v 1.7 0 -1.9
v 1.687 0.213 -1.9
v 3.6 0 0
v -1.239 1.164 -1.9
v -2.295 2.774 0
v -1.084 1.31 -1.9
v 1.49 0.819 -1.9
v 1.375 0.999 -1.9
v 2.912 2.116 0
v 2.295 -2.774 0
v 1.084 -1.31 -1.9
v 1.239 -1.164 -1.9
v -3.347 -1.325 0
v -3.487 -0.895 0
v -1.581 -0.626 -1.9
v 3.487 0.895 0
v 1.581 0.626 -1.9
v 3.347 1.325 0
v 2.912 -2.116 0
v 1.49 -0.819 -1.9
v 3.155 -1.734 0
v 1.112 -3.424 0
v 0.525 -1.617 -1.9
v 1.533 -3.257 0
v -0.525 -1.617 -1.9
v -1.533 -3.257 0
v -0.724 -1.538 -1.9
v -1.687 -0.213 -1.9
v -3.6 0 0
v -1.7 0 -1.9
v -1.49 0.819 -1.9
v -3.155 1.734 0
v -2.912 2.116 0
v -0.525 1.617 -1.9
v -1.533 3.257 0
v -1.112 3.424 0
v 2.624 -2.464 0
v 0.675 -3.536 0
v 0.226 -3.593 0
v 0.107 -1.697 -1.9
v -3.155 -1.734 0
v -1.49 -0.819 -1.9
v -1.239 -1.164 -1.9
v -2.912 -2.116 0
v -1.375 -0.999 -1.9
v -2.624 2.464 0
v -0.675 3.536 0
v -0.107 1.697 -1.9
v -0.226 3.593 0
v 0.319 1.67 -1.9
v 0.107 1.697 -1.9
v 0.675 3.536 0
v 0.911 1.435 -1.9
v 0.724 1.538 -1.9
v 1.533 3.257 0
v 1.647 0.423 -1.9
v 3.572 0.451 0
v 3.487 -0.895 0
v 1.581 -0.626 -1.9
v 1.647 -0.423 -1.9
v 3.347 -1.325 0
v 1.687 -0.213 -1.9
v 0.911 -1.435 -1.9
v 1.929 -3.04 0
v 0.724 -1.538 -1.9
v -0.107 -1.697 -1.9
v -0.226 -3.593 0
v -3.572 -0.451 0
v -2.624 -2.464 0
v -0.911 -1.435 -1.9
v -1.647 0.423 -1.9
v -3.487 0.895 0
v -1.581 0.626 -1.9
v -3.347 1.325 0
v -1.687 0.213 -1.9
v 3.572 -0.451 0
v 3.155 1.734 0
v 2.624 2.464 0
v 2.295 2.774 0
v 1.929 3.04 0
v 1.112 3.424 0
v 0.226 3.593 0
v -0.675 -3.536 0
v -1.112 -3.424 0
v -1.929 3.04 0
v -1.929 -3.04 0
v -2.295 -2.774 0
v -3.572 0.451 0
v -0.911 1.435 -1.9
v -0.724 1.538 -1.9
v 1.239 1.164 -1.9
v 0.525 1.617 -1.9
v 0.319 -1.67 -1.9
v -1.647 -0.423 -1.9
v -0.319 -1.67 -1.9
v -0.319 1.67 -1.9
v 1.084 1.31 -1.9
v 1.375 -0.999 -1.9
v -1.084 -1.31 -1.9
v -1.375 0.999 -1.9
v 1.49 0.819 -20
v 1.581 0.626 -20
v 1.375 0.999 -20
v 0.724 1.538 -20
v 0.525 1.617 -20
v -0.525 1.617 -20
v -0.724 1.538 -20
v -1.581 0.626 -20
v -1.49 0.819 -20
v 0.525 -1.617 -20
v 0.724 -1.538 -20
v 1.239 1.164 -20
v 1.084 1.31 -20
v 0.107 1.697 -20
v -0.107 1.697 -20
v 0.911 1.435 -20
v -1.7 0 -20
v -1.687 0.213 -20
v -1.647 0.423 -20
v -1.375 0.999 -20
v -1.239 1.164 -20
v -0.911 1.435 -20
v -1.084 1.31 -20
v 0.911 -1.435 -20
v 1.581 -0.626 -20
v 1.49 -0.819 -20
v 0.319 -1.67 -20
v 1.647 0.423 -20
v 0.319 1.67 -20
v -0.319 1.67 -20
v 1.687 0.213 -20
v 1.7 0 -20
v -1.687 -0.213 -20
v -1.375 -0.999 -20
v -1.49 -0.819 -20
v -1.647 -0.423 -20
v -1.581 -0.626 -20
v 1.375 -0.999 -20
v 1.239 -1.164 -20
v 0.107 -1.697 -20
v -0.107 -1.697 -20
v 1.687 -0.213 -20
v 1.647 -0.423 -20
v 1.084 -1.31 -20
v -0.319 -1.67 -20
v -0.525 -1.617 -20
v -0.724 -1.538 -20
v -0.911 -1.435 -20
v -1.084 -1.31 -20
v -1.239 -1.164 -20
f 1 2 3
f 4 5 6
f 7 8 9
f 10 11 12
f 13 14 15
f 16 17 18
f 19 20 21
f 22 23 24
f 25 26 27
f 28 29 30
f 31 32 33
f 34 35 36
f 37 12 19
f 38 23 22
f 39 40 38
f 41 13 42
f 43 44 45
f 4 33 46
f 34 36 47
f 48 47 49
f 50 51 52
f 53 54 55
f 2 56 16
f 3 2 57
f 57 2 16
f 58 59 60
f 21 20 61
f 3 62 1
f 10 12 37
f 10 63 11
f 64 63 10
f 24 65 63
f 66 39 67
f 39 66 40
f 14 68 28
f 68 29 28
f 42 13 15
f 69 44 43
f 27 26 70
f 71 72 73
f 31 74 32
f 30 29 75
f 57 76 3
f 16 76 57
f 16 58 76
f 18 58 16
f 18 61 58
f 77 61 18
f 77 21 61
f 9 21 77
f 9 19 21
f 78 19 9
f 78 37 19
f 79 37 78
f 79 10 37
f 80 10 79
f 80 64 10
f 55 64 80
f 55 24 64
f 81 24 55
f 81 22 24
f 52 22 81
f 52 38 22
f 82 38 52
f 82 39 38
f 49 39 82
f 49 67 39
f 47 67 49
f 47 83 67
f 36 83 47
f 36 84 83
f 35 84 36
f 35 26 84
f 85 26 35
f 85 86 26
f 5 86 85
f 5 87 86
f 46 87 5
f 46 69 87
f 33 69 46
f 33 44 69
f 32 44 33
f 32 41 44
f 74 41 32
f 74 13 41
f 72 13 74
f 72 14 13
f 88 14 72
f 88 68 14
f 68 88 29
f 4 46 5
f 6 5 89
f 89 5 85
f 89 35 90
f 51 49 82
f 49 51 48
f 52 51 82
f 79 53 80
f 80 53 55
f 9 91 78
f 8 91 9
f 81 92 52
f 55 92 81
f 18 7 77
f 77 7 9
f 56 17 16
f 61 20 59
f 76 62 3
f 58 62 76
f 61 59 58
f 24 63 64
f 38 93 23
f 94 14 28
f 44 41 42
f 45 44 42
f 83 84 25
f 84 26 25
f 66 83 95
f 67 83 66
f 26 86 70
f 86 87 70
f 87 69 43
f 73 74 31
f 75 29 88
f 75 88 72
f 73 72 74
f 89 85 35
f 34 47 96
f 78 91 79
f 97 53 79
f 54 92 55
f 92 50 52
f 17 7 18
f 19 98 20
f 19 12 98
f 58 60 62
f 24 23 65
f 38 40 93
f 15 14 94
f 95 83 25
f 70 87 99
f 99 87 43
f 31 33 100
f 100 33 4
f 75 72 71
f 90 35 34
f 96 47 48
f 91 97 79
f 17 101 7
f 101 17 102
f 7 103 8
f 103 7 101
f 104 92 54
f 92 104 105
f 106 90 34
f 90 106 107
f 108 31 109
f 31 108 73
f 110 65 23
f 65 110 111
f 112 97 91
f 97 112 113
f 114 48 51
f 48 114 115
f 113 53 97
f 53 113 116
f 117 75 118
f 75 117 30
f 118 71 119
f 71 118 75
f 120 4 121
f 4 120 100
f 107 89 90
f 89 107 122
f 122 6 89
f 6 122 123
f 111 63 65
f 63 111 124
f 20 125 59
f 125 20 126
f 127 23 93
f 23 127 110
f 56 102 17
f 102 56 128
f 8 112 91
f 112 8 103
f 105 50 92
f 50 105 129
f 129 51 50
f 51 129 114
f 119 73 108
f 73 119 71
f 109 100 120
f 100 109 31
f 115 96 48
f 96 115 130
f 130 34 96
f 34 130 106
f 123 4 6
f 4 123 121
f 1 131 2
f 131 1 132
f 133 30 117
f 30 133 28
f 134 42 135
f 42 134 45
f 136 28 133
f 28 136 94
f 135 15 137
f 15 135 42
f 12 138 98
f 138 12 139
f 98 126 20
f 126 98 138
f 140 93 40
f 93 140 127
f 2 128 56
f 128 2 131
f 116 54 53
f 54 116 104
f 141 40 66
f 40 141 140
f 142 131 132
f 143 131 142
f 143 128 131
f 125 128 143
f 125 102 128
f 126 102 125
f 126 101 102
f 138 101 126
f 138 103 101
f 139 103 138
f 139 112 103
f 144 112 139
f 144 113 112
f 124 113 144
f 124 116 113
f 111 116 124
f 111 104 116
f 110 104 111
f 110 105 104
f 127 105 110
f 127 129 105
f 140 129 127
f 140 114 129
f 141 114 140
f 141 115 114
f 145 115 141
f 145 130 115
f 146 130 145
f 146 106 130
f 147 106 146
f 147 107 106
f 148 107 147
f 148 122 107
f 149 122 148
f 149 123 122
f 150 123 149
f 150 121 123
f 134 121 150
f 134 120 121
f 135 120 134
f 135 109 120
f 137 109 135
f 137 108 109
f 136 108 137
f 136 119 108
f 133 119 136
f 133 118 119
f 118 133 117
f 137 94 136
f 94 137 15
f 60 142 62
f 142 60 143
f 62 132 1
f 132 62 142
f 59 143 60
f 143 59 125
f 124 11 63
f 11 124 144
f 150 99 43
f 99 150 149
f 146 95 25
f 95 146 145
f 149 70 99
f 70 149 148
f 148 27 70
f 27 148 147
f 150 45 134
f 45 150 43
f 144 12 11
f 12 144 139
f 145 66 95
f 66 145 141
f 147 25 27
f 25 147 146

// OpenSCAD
// Generated by SolidPython 1.1.3 on 2023-03-13 21:06:12
$fn = 50;


difference() {
	union() {
		translate(v = [0, 0, -1.9000000000]) {
			rotate(a = [0, 0, 0]) {
				cylinder(h = 1.9000000000, r1 = 1.7000000000, r2 = 3.6000000000);
			}
		}
		translate(v = [0, 0, -20]) {
			rotate(a = [0, 0, 0]) {
				cylinder(h = 20, r = 1.7000000000);
			}
		}
	}
	union();
}
/***********************************************
*********      SolidPython code:      **********
************************************************
 
from solid import *
import os
import subprocess

import oomB

import opsc_library_gen

mode = "laser"
#mode = "3d_print"

defined_objects = {}

radius_dict = {}
countersunk_dict = {}


def set_mode(m):
    global mode
    mode = m
    radius_dict['M6'] = 6.5/2
    radius_dict['M3'] = 3.3/2
    if mode == "laser":
        radius_dict['M6'] = 6/2
        radius_dict['M3'] = 3/2

    countersunk_dict['M3'] = {}
    countersunk_dict['M3']['little_rad'] = radius_dict['M3']
    countersunk_dict['M3']['big_rad'] = (5.5+0.6)/2
    if mode == "laser":
        countersunk_dict['M3']['big_rad'] = (4.75+0.6)/2
        countersunk_dict['M3']['little_rad'] = (4.75+0.6)/2

    countersunk_dict['M3']['height'] = 1.7


def opsc_make_object(filename, objects, save_type="none",resolution=50, layers = 1, tilediff = 200, mode="laser", overwrite=True):
    if overwrite or not os.path.exists(filename):
        set_mode(mode)
        save_type = save_type.lower()
        os.makedirs(os.path.dirname(filename), exist_ok=True)
        final_object = opsc_get_object(objects, mode = mode)
        # Save the final object to the specified filename    
        scad_render_to_file(final_object, filename, file_header='$fn = %s;' % resolution, include_orig_code=True)
        if save_type == "all":
            saveToAll(filename)
        elif save_type == "dxf":
            saveToDxf(filename)
        if mode == "laser":
            filename_laser = filename.replace(".scad","-flat.scad")
            scad_render_to_file(getLaser(final_object, layers=layers, tilediff=tilediff), filename_laser, file_header='$fn = %s;' % resolution, include_orig_code=True)
            if save_type == "all":
                saveToAll(filename_laser)
            elif save_type == "dxf":
                saveToDxf(filename_laser)


def opsc_get_object(objects, mode = "laser"):
    # Create the solidpython objects only include the positive objects and if they don't have inclusion or their inclusion is either all or mode
    # Initialize an empty list to store the results
    positive_objects = []

    # Iterate over the "objects" list
    for obj in objects:
        # Check if the current object has a "type" key with a value of "positive"
        if obj['type'] == 'positive':
            # Check if the current object has an "inclusion" key and its value matches "mode",
            # or if the current object does not have an "inclusion" key at all
            if not 'inclusion' in obj or obj['inclusion'] == "all" or obj['inclusion'] == mode:
                # Call the "get_opsc_item" function with the current object as an argument
                opsc_item = get_opsc_item(obj)
                # Add the result to the "positive_objects" list
                positive_objects.append(opsc_item)
# Initialize an empty list to store the results
    negative_objects = []

    # Iterate over the "objects" list
    for obj in objects:
        # Check if the current object has a "type" key with a value of "negative"
        if obj['type'] == 'negative':
            # Check if the current object has an "inclusion" key and its value matches "mode",
            # or if the current object does not have an "inclusion" key at all
            if not 'inclusion' in obj or obj['inclusion'] == "all" or obj['inclusion'] == mode:
                # Call the "get_opsc_item" function with the current object as an argument
                opsc_item = get_opsc_item(obj)
                # Add the result to the "negative_objects" list
                negative_objects.append(opsc_item)
    
    #positive_objects = [get_opsc_item(obj) for obj in objects if obj['type'] == 'positive']
    #negative_objects = [get_opsc_item(obj) for obj in objects if obj['type'] == 'negative']
    # Union the positive objects
    positive_object = union()(*positive_objects)
    # Union the negative objects
    negative_object = union()(*negative_objects)
    # Create the final object by subtracting the negative objects from the positive objects
    return difference()(positive_object, negative_object)

def get_opsc_item(params):
    # A dictionary to map radius string values to numerical values
    #radius_dict = {'small': 5, 'medium': 10, 'large': 15}
    # An array of function names for basic shapes
    basic_shapes = ['cube', 'sphere', 'cylinder']
    
    # An array of function names for other shapes
    other_shapes = ['hole', 'slot', 'rounded_rectangle', 'countersunk', 'polyg']
    


    # Convert radius to r if present, and remove radius from the params dictionary
    if 'radius' in params:
        if isinstance(params['radius'], str):
            # Use the radius_dict to map the radius string value to a numerical value
            params['r'] = radius_dict[params['radius']]
        else:
            params['r'] = params['radius']
        del params['radius']
    

    # Check if the object type is a basic shape
    if params['shape'] in basic_shapes:
        # Remove shape and unexpected dictionary values
        allowed_keys = {'size', 'r', 'r1', 'r2', 'd', 'h', 'rw', 'rh', 'dw', 'dh'}
        shape_params = {k: v for k, v in params.items() if k in allowed_keys}

        #params['m'] = "#"
        ###split for adding modifier
        try:
            m = params['m']
            func = globals()[params['shape']]
            return_value = get_opsc_transform(params,func(**shape_params))
            return_value = (return_value).set_modifier(m)
            return return_value
        except KeyError as e:
            return get_opsc_transform(params,globals()[params['shape']](**shape_params))
        
    elif params['shape'] == 'polygon':
        # Remove shape and unexpected dictionary values
        h  = params['height']
        allowed_keys = {'points'}
        shape_params = {k: v for k, v in params.items() if k in allowed_keys}

        # Call the corresponding function for the shape parameter, using ** notation to pass the shape_params dictionary as keyword arguments
        params["rot"] = [0,0,0]        
        try:
            m = params['m']
            func = globals()[params['shape']]
            return_value = get_opsc_transform(params,linear_extrude(h)(globals()[params['shape']](**shape_params)))
            return_value = (return_value).set_modifier(m)
            return return_value
        except KeyError as e:
            return_value = get_opsc_transform(params,linear_extrude(h)(globals()[params['shape']](**shape_params)))
            return_value = (return_value)
            return return_value


    # If the object type is not a basic shape, check if it's a defined object or one of the other shapes
    elif params['shape'] in other_shapes:
        # Call the corresponding function for the shape parameter, passing the params dictionary as an argument
        p2 = copy.deepcopy(params)
        p2["pos"] = [0,0,0]
        return get_opsc_transform(params,globals()[params['shape']](p2))
    
    # If the object is not a basic shape or a defined object, try to import it from a .scad file
    else:
        obj = defined_objects[params['shape']]
        return get_opsc_transform(params,obj)

def get_opsc_transform(params, solid_obj):
    # Rotate the object based on the 'rot' field in the params dictionary, or the 'rotX', 'rotY', and 'rotZ' fields if 'rot' is not present
    rot = params.get('rot', [])
    if rot:
        rotX, rotY, rotZ = rot
    else:
        rotX = params.get('rotX', 0)
        rotY = params.get('rotY', 0)
        rotZ = params.get('rotZ', 0)
    solid_obj = rotate([rotX, rotY, rotZ])(solid_obj)

    # Translate the object based on the 'pos' field in the params dictionary, or the 'x', 'y', and 'z' fields if 'pos' is not present
    pos = params.get('pos', [])
    if pos:
        x, y, z = pos
    else:
        x = params.get('x', 0)
        y = params.get('y', 0)
        z = params.get('z', 0)
    solid_obj = translate([x, y, z])(solid_obj)
    return solid_obj


import random

def opsc_easy_array(type, shape, repeats, pos_start, shift_arr, **kwargs):
    for i in range(0,3):
        repeats.append(1)
        pos_start.append(0)
        shift_arr.append(0)
    return_objects = []

    for x in range(0,repeats[0]):
        for y in range(0,repeats[1]):
            for z in range(0,repeats[2]):
                return_objects.append(opsc_easy(type, shape, pos=[pos_start[0]+x*shift_arr[0],pos_start[1]+y*shift_arr[1],pos_start[2]+z*shift_arr[2]], **kwargs))
    return return_objects                



def opsc_easy(type, shape, **kwargs):
    obj = {
        'type': type,
        'shape': shape
    }
    for param in ['size', 'r', 'r1', 'r2', 'd', 'h', 'rw', 'rh', 'dw', 'dh', 'pos', 'x', 'y', 'z', 'rot', 'rotX', 'rotY', 'rotZ', "w", "inclusion", 'sides', 'height', "m"]:
        if param in kwargs:
            obj[param] = kwargs[param]
    return obj

def hole(params):
    p2 = copy.deepcopy(params)  
    # Check if the radius is a string and replace it with the corresponding value from the dictionary
    if isinstance(p2['r'], str):
        p2['r'] = radius_dict[p2['r']]
    
    # Set the height to 100 if not specified
    if 'h' not in p2:
        p2['h'] = 100
        p2["pos"] = [0,0,-50]
    p2["center"] = True
    # Create the cylinder object
    p2["shape"] = "cylinder"
    p2["type"] = "positive"

    return get_opsc_item(p2)

import copy

def countersunk(params):
    p2 = copy.deepcopy(params)
    counter_rad = p2['r']
    p2['r'] = radius_dict[p2['r']]
    hp = copy.deepcopy(p2)
    hp["type"] = "positive"
    hp["shape"] = "hole"
    del hp["rot"]
    hol = get_opsc_item(hp)
    
    cp = copy.deepcopy(p2)
    cp["h"] = countersunk_dict[counter_rad]["height"]
    cp["r2"] = countersunk_dict[counter_rad]["little_rad"]
    cp["r1"] = countersunk_dict[counter_rad]["big_rad"]
    del cp["r"]
    del cp["rot"]
    cp["type"] = "positive"
    cp["shape"] = "cylinder"
    cp["pos"] = [0,0,0]

    top = get_opsc_item(cp)
    return union()(hol,top)



def slot(params):  
    p2 = copy.deepcopy(params) 
    if isinstance(p2['r'], str):
        p2['r'] = radius_dict[p2['r']]
    p2["type"] = "positive"
    p2["shape"] = "hole"
    del p2["rot"]
    p2["pos"] = [0,0,0]
    left = copy.deepcopy(p2)
    right = copy.deepcopy(p2)
    left["pos"][0] = p2["w"] / 2 - p2["r"] 
    
    right["pos"][0] = -p2["w"] / 2 + p2["r"] 
    pass
    leftObj = get_opsc_item(left)
    rightObj = get_opsc_item(right)
    return hull()(leftObj, rightObj)

def rounded_rectangle(params):   
    p2 = copy.deepcopy(params) 
    p2["h"] = p2["size"][2]
    p2["pos"] = p2.get("pos", [0, 0, 0]) 
    p2["type"] = "positive"
    p2["shape"] = "hole"
    p2["pos"] = [0,0,0]
    
    if 'rot' in p2:
        del p2["rot"]   
    if 'r' not in p2:
        p2["r"] = 5 
    tl = copy.deepcopy(p2)
    tr = copy.deepcopy(p2)
    bl = copy.deepcopy(p2)
    br = copy.deepcopy(p2)
    tl["pos"][0] = -(p2["size"][0] - p2["r"]*2)/2
    tl["pos"][1] = (p2["size"][1] - p2["r"]*2)/2
    tr["pos"][0] = (p2["size"][0] - p2["r"]*2)/2
    tr["pos"][1] = (p2["size"][1] - p2["r"]*2)/2
    bl["pos"][0] = -(p2["size"][0] - p2["r"]*2)/2
    bl["pos"][1] = -(p2["size"][1] - p2["r"]*2)/2
    br["pos"][0] = (p2["size"][0] - p2["r"]*2)/2
    br["pos"][1] = -(p2["size"][1] - p2["r"]*2)/2
    del tl["size"]
    del tr["size"]
    del bl["size"]
    del br["size"]
    tlo = get_opsc_item(tl)
    tro = get_opsc_item(tr)
    blo = get_opsc_item(bl)
    bro = get_opsc_item(br)    
    return hull()(tlo, tro, blo, bro)



def polyg(params):
    p2 = copy.deepcopy(params) 
    p2["type"] = "positive"
    p2["shape"] = "polygon"
    p2["pos"] = [0,0,0]
    sides = p2["sides"]
    radius = p2["r"]    
    angles = [i * 360 / sides for i in range(sides)]
    points = regular_polygon(sides, radius)
    
    p2["points"] = points
    return get_opsc_item(p2)

import math

def regular_polygon(num_sides, radius):
    # Calculate the angle between each side
    angle = 2 * math.pi / num_sides

    # Calculate the points of the polygon
    points = []
    for i in range(num_sides):
        x = radius * math.cos(i * angle)
        y = radius * math.sin(i * angle)
        points.append((x, y))
    return points

def import_scad_object(filename):
    # Import the .scad file and convert it to a solidpython object
    #filename = "parts"
    obj = import_scad(filename)
    return obj.main()



import os
import solid as solidpython

# A dictionary to store the defined objects


def load_scad_objects():
    opsc_library_gen.gen_library(defined_objects)

import random

def test(num_objects):
    objects = []
    for i in range(num_objects):
        # Choose a random shape
        #shape = random.choice(['cube', 'sphere', 'cylinder', 'hole', 'slot', "rounded_rectangle"])
        shape = random.choice(["rounded_rectangle"])

        # Choose a random type
        type = random.choice(['positive', 'negative'])
        
        # Create an empty object dictionary
        obj = {'shape': shape, 'type': type}
        
        # Set shape-specific parameters
        if obj['shape'] in ['cube']:
            obj['size'] =  [random.uniform(5, 15), random.uniform(5, 15), random.uniform(5, 15)]
        if obj['shape'] in ['rounded_rectangle']:
            obj['size'] =  [random.uniform(5, 15), random.uniform(5, 15), random.uniform(5, 15)]
            obj['r'] = random.uniform(0.5, 5)
        elif obj['shape'] == 'sphere':
            obj['r'] = random.uniform(5, 15)
        elif obj['shape'] in ['cylinder', 'hole']:
            obj['r'] = random.uniform(0.5, 5)
            obj['h'] = random.uniform(5, 15)
        elif obj['shape'] == 'slot':
            obj['r'] = random.uniform(0.5, 5)
            obj['h'] = random.uniform(5, 15)
            obj['w'] = random.uniform(5, 15)
        
        # Set a random position and rotation
        obj['pos'] = [random.uniform(-20, 20), random.uniform(-20, 20), random.uniform(-20, 20)]
        obj['rot'] = [random.uniform(-180, 180), random.uniform(-180, 180), random.uniform(-180, 180)]
        
        # Add the object to the list
        objects.append(obj)
    return objects

####### old file saving
def saveToAll(fileIn):
    saveToStl(fileIn)
    saveToDxf(fileIn)
    saveToPng(fileIn)
    saveToSvg(fileIn)

def saveToDxf(fileIn, fileOut="", copy_to_laser=True):
    if fileOut == "":
        fileOut = fileIn.replace(".scad",".dxf")
    saveToFile(fileIn, fileOut)


    
def saveToPng(fileIn, fileOut="",extra="--render"):
    if fileOut == "":
        fileOut = fileIn.replace(".scad",".png")
    saveToFile(fileIn, fileOut)

def saveToStl(fileIn, fileOut=""):
    if fileOut == "":
        fileOut = fileIn.replace(".scad",".stl")
    saveToFile(fileIn, fileOut)
    
def saveToSvg(fileIn, fileOut=""):
    if fileOut == "":
        fileOut = fileIn.replace(".scad",".svg")
    saveToFile(fileIn, fileOut)

def saveToFile(fileIn, fileOut,extra=""):
    #extra = extra + " --colorscheme Tomorrow"

    launchStr = 'openscad -o "' + fileOut + '"' + extra + ' "' + fileIn + '"'
    if ".png" in fileOut:
        launchStr = launchStr + " --render"
    print("            saveToFile launch string: " + launchStr)
    subprocess.run(launchStr)
    x=0

def getLaser(final_object,start=1.5,layers=1,thickness=3,tilediff=200):
        rv= []

        for x in range(layers):
            rv.append(translate([0,x*tilediff,0])(
                    projection()(
                        intersection()(translate([-500,-500,start+x*thickness])(cube(size=[1000,1000,0.1])),
                            final_object
                        )
                    )
            )
            )
            
        return union()(rv)

set_mode("laser")
load_scad_objects() 
 
************************************************/
